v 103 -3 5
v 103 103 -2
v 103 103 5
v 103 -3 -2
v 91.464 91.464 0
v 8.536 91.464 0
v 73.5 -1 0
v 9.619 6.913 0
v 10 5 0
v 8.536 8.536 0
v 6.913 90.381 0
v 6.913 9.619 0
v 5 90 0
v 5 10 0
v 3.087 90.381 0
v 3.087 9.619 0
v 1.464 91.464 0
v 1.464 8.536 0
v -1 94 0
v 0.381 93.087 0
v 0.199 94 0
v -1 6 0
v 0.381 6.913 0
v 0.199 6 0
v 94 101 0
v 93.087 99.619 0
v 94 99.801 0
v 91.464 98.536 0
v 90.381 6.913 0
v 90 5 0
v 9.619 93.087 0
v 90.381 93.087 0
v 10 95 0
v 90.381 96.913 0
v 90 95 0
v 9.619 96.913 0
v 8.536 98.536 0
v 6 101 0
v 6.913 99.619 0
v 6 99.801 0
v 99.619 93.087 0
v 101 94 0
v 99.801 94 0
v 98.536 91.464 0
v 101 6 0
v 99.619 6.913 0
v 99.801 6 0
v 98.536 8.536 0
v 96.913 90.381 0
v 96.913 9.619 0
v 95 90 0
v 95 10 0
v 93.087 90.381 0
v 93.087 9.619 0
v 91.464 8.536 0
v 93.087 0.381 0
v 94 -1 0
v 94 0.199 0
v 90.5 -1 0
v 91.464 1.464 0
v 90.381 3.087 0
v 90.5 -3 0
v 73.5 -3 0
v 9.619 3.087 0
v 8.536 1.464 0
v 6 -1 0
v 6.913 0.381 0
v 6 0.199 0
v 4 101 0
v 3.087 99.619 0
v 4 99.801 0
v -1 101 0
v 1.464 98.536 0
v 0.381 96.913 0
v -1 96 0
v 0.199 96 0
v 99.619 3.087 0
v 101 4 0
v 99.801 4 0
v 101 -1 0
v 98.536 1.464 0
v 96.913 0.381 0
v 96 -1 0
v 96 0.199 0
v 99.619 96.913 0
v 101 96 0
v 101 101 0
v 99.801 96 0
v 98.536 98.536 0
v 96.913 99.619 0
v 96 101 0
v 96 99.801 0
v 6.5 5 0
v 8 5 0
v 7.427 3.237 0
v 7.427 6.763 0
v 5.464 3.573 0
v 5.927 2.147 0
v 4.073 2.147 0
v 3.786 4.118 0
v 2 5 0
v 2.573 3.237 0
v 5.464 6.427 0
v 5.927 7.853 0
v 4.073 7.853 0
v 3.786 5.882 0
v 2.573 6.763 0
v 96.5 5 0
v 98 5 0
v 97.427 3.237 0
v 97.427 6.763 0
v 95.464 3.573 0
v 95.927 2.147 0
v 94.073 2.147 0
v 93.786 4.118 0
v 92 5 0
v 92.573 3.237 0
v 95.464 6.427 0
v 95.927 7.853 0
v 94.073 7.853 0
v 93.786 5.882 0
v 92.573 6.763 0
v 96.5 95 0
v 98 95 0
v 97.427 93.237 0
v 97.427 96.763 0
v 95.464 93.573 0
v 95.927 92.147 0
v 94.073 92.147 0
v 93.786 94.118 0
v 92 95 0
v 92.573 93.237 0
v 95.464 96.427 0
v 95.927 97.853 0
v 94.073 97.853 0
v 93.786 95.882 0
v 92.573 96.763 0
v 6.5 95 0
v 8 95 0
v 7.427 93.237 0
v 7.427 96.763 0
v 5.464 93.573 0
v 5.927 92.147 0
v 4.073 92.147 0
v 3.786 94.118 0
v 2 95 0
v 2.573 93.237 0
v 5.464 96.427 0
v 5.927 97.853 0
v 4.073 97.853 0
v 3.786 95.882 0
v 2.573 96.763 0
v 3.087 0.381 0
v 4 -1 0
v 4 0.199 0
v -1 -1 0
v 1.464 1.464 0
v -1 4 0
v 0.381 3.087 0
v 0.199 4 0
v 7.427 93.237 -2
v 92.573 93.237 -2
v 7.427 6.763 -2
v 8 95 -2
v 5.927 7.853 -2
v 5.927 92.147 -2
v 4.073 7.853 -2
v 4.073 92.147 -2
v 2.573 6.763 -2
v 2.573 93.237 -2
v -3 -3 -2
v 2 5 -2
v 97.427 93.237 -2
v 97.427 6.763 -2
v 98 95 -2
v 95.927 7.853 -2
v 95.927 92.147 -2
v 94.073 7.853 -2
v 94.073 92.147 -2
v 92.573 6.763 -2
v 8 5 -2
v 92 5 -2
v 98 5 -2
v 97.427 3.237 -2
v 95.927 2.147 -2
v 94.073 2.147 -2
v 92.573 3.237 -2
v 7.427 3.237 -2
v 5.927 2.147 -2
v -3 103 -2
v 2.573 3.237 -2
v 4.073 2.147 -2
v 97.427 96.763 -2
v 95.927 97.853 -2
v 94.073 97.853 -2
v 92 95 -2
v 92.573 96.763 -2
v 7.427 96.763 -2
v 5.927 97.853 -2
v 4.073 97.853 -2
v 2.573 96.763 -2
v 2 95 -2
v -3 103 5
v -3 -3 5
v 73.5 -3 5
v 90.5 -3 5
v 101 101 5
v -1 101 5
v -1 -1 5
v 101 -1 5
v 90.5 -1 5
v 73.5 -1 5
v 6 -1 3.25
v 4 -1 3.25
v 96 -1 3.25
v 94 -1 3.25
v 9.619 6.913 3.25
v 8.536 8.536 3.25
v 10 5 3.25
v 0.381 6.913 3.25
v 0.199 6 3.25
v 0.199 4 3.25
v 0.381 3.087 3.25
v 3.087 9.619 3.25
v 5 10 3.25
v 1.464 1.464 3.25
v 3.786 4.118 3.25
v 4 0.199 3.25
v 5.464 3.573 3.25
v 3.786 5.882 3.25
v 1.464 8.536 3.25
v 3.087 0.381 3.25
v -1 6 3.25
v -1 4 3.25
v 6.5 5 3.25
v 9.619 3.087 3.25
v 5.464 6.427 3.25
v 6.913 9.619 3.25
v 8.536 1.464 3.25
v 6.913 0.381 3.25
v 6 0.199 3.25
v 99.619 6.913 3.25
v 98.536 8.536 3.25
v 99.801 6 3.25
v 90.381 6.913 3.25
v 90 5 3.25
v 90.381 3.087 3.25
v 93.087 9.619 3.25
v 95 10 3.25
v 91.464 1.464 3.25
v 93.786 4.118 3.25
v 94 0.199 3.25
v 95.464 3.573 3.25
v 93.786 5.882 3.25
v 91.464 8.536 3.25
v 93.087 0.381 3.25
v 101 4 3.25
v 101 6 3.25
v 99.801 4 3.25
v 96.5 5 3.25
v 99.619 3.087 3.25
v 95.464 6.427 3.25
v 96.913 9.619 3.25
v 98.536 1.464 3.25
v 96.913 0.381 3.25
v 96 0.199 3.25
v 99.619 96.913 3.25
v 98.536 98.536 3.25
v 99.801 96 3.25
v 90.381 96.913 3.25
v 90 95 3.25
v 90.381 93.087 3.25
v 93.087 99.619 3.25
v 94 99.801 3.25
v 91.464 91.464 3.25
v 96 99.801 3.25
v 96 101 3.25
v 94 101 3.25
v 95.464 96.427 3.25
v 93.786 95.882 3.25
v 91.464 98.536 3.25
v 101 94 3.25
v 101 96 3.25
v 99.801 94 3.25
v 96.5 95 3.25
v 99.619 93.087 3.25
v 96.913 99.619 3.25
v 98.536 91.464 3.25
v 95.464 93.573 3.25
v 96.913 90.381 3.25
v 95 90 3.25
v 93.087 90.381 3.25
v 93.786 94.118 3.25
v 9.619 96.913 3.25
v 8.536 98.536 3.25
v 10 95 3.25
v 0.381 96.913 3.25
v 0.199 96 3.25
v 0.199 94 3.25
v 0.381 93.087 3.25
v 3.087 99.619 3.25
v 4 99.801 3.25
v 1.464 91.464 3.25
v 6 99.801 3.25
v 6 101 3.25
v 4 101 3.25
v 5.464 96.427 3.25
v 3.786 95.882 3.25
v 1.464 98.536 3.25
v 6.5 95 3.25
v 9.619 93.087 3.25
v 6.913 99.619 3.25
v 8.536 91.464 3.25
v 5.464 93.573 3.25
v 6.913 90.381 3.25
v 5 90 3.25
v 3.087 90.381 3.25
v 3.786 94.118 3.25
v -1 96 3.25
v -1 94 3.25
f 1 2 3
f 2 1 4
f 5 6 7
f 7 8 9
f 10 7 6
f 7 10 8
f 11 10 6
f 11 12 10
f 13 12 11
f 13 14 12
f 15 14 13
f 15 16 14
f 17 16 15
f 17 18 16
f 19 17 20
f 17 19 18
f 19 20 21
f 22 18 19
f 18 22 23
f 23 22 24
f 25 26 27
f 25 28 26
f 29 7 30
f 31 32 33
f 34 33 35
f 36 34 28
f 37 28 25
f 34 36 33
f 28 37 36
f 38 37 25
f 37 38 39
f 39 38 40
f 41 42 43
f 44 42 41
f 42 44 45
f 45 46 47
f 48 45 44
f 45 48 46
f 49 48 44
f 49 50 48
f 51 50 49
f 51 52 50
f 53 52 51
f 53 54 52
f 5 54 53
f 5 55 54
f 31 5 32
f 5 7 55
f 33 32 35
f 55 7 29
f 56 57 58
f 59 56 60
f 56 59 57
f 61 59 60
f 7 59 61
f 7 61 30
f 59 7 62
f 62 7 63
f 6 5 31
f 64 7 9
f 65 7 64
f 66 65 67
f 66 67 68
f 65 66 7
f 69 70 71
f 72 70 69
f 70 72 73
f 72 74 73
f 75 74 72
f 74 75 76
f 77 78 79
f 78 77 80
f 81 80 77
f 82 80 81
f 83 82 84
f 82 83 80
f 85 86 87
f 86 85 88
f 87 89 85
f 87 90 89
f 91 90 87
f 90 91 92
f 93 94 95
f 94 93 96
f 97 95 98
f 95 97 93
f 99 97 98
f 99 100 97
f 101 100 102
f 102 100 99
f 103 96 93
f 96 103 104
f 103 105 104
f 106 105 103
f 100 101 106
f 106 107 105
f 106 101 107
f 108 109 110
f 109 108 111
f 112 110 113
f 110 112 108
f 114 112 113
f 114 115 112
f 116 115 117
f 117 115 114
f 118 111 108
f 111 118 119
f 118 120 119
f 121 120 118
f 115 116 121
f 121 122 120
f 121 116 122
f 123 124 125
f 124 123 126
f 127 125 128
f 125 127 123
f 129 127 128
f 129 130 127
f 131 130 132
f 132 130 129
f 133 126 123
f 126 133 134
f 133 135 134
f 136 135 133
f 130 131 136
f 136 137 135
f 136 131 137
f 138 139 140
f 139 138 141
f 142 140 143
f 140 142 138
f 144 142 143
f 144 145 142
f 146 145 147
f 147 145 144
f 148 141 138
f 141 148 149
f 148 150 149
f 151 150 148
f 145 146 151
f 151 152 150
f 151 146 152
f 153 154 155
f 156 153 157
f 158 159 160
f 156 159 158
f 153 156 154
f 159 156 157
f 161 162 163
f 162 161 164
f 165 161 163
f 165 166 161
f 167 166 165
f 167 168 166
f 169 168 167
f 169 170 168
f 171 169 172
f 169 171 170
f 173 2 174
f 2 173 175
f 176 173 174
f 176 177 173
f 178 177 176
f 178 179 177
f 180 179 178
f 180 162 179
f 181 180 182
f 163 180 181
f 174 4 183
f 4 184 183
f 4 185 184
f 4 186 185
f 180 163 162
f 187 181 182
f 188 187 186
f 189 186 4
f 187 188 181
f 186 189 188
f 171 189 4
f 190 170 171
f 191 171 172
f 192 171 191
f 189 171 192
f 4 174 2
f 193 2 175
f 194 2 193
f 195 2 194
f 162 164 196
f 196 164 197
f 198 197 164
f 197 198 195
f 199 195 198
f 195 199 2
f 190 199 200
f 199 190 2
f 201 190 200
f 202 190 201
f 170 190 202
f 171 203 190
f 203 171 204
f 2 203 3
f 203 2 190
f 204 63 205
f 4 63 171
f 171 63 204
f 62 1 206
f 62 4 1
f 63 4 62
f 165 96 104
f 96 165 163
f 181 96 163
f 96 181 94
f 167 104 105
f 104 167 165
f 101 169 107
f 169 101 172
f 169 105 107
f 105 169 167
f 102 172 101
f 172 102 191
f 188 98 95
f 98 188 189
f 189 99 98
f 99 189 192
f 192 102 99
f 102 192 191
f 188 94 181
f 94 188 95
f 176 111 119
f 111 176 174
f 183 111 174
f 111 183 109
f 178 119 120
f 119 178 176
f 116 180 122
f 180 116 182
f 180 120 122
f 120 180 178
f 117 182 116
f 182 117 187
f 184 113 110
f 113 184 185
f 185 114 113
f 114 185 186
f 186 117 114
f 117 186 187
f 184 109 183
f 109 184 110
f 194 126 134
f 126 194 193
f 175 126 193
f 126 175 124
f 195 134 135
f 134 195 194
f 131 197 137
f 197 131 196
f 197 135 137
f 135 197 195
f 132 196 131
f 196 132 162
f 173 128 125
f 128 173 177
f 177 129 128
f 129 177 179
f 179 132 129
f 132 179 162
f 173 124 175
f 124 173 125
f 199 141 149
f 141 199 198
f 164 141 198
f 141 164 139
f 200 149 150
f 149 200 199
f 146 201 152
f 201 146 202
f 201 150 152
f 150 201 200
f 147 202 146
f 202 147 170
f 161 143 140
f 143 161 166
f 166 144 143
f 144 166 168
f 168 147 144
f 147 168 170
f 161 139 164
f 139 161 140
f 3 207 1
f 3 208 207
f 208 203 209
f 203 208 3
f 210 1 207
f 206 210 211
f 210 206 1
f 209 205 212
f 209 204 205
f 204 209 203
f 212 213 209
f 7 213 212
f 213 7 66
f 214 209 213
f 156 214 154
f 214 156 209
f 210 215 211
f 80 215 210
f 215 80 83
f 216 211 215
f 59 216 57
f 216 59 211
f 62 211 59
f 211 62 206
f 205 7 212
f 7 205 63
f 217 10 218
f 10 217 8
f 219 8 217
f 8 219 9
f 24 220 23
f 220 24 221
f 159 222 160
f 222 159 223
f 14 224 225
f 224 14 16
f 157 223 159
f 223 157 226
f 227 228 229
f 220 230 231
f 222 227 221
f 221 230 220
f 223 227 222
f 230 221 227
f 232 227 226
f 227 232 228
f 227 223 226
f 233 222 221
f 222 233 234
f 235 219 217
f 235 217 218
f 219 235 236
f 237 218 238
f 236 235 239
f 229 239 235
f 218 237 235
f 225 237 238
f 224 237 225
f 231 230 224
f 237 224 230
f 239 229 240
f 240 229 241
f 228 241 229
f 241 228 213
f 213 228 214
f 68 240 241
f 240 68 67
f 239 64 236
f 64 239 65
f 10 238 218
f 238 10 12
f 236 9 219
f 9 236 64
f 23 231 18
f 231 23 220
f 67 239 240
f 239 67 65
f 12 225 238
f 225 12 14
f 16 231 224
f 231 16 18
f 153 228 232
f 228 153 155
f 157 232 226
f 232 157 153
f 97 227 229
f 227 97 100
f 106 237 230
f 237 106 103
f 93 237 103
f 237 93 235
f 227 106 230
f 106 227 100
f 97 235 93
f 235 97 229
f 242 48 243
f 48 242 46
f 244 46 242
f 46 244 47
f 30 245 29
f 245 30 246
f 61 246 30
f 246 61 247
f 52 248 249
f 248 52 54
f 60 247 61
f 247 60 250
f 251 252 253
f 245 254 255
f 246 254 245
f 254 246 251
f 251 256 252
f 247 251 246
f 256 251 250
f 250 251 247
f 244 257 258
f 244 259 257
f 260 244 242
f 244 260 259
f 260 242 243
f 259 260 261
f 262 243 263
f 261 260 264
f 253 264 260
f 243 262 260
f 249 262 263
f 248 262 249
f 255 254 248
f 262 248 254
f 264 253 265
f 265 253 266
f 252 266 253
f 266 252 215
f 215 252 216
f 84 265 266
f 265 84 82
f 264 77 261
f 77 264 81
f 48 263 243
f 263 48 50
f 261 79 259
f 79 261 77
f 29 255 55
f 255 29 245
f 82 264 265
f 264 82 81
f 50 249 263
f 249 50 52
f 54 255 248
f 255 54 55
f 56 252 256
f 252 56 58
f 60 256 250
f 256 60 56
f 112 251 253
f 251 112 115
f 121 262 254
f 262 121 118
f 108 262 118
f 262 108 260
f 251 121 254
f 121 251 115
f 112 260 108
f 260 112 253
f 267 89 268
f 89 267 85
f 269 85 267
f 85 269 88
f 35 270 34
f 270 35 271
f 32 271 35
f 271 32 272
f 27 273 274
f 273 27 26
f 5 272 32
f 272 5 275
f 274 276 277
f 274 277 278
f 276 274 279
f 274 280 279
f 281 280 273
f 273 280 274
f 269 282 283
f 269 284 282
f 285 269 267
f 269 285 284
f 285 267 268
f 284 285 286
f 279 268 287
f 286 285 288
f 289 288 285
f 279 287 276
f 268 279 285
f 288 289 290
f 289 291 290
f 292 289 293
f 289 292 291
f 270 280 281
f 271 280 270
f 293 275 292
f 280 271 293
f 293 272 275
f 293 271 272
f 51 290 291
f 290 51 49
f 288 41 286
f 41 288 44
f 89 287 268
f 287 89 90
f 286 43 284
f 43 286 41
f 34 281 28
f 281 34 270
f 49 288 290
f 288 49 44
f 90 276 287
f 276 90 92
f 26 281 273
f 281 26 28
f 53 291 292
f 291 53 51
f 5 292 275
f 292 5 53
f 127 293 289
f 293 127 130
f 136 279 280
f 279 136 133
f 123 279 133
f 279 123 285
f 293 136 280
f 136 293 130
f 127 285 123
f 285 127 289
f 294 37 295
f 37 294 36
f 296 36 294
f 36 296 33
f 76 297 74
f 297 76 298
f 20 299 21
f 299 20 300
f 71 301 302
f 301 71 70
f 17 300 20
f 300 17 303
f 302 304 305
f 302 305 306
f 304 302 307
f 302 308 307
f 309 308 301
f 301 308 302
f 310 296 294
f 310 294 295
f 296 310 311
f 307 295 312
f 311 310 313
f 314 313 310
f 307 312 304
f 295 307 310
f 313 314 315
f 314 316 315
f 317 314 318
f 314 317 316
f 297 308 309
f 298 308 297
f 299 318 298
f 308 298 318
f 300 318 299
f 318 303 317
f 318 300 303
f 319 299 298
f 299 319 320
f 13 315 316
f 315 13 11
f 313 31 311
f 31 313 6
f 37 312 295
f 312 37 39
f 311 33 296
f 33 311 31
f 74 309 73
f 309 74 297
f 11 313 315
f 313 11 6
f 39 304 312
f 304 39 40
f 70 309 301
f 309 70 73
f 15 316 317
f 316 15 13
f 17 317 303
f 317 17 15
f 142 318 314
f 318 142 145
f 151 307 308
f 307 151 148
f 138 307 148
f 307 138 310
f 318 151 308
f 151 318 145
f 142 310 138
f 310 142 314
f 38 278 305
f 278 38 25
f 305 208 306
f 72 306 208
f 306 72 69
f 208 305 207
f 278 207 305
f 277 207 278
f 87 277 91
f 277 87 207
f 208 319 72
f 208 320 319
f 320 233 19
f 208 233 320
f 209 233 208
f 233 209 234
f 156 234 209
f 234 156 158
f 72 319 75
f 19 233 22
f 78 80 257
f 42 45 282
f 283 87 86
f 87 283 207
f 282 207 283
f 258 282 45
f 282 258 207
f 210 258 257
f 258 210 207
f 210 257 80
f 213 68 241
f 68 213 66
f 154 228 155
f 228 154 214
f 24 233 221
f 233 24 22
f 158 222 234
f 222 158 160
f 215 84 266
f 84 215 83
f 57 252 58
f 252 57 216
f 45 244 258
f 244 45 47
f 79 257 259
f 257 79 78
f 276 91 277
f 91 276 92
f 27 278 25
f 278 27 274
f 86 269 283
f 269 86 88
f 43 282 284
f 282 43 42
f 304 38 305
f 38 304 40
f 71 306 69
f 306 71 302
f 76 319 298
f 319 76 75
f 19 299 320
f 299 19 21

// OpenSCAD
// bottom
translate([-3, -3, -2]) {
    difference() {
        cube([106, 106, 2], center = false);
        translate([3+5, 3+5, -1]) {
            cylinder(4, 3, 3);
        }
        translate([3+95, 3+5, -1]) {
            cylinder(4, 3, 3);
        }
        translate([3+95, 3+95, -1]) {
            cylinder(4, 3, 3);
        }
        translate([3+5, 3+95, -1]) {
            cylinder(4, 3, 3);
        }
    }
}

// front
translate([-3, -3, 0]) {
    difference() {
        cube([106, 2, 5], center = false);
        translate([73.5+3, -0.5, 0]) {
            cube([17, 3, 6], center = false);
        }
    }
}

// back
translate([-3, 101, 0]) {
    cube([106, 2, 5], center = false);
}

// left
translate([-3, -3, 0]) {
    cube([2, 106, 5], center = false);
}

// right
translate([101, -3, 0]) {
    cube([2, 106, 5], center = false);
}

// front left corner
translate([5, 5, 0]) {
    difference() {
        cylinder(3.25, 5, 5);
        translate([0, 0, -1]) {
            cylinder(4.5, 1.5, 1.5);
        }
    }
}
translate([4, -1, 0]) {
    cube([2, 3, 3.25], center = false);
}
translate([-1, 4, 0]) {
    cube([3, 2, 3.25], center = false);
}

// front right corner
translate([95, 5, 0]) {
    difference() {
        cylinder(3.25, 5, 5);
        translate([0, 0, -1]) {
            cylinder(4.5, 1.5, 1.5);
        }
    }
}
translate([94, -1, 0]) {
    cube([2, 3, 3.25], center = false);
}
translate([99, 4, 0]) {
    cube([3, 2, 3.25], center = false);
}

// back right corner
translate([95, 95, 0]) {
    difference() {
        cylinder(3.25, 5, 5);
        translate([0, 0, -1]) {
            cylinder(4.5, 1.5, 1.5);
        }
    }
}
translate([94, 99, 0]) {
    cube([2, 3, 3.25], center = false);
}
translate([99, 94, 0]) {
    cube([3, 2, 3.25], center = false);
}

// back left corner
translate([5, 95, 0]) {
    difference() {
        cylinder(3.25, 5, 5);
        translate([0, 0, -1]) {
            cylinder(4.5, 1.5, 1.5);
        }
    }
}
translate([4, 99, 0]) {
    cube([2, 3, 3.25], center = false);
}
translate([-1, 94, 0]) {
    cube([3, 2, 3.25], center = false);
}


/*
// CSG.scad - Basic example of CSG usage

translate([-24,0,0]) {
    union() {
        cube(15, center=true);
        sphere(10);
    }
}

intersection() {
    cube(15, center=true);
    sphere(10);
}

translate([24,0,0]) {
    difference() {
        cube(15, center=true);
        sphere(10);
    }
}

echo(version=version());
// Written by Marius Kintel <marius@kintel.net>
//
// To the extent possible under law, the author(s) have dedicated all
// copyright and related and neighboring rights to this software to the
// public domain worldwide. This software is distributed without any
// warranty.
//
// You should have received a copy of the CC0 Public Domain
// Dedication along with this software.
// If not, see <http://creativecommons.org/publicdomain/zero/1.0/>.
*/
